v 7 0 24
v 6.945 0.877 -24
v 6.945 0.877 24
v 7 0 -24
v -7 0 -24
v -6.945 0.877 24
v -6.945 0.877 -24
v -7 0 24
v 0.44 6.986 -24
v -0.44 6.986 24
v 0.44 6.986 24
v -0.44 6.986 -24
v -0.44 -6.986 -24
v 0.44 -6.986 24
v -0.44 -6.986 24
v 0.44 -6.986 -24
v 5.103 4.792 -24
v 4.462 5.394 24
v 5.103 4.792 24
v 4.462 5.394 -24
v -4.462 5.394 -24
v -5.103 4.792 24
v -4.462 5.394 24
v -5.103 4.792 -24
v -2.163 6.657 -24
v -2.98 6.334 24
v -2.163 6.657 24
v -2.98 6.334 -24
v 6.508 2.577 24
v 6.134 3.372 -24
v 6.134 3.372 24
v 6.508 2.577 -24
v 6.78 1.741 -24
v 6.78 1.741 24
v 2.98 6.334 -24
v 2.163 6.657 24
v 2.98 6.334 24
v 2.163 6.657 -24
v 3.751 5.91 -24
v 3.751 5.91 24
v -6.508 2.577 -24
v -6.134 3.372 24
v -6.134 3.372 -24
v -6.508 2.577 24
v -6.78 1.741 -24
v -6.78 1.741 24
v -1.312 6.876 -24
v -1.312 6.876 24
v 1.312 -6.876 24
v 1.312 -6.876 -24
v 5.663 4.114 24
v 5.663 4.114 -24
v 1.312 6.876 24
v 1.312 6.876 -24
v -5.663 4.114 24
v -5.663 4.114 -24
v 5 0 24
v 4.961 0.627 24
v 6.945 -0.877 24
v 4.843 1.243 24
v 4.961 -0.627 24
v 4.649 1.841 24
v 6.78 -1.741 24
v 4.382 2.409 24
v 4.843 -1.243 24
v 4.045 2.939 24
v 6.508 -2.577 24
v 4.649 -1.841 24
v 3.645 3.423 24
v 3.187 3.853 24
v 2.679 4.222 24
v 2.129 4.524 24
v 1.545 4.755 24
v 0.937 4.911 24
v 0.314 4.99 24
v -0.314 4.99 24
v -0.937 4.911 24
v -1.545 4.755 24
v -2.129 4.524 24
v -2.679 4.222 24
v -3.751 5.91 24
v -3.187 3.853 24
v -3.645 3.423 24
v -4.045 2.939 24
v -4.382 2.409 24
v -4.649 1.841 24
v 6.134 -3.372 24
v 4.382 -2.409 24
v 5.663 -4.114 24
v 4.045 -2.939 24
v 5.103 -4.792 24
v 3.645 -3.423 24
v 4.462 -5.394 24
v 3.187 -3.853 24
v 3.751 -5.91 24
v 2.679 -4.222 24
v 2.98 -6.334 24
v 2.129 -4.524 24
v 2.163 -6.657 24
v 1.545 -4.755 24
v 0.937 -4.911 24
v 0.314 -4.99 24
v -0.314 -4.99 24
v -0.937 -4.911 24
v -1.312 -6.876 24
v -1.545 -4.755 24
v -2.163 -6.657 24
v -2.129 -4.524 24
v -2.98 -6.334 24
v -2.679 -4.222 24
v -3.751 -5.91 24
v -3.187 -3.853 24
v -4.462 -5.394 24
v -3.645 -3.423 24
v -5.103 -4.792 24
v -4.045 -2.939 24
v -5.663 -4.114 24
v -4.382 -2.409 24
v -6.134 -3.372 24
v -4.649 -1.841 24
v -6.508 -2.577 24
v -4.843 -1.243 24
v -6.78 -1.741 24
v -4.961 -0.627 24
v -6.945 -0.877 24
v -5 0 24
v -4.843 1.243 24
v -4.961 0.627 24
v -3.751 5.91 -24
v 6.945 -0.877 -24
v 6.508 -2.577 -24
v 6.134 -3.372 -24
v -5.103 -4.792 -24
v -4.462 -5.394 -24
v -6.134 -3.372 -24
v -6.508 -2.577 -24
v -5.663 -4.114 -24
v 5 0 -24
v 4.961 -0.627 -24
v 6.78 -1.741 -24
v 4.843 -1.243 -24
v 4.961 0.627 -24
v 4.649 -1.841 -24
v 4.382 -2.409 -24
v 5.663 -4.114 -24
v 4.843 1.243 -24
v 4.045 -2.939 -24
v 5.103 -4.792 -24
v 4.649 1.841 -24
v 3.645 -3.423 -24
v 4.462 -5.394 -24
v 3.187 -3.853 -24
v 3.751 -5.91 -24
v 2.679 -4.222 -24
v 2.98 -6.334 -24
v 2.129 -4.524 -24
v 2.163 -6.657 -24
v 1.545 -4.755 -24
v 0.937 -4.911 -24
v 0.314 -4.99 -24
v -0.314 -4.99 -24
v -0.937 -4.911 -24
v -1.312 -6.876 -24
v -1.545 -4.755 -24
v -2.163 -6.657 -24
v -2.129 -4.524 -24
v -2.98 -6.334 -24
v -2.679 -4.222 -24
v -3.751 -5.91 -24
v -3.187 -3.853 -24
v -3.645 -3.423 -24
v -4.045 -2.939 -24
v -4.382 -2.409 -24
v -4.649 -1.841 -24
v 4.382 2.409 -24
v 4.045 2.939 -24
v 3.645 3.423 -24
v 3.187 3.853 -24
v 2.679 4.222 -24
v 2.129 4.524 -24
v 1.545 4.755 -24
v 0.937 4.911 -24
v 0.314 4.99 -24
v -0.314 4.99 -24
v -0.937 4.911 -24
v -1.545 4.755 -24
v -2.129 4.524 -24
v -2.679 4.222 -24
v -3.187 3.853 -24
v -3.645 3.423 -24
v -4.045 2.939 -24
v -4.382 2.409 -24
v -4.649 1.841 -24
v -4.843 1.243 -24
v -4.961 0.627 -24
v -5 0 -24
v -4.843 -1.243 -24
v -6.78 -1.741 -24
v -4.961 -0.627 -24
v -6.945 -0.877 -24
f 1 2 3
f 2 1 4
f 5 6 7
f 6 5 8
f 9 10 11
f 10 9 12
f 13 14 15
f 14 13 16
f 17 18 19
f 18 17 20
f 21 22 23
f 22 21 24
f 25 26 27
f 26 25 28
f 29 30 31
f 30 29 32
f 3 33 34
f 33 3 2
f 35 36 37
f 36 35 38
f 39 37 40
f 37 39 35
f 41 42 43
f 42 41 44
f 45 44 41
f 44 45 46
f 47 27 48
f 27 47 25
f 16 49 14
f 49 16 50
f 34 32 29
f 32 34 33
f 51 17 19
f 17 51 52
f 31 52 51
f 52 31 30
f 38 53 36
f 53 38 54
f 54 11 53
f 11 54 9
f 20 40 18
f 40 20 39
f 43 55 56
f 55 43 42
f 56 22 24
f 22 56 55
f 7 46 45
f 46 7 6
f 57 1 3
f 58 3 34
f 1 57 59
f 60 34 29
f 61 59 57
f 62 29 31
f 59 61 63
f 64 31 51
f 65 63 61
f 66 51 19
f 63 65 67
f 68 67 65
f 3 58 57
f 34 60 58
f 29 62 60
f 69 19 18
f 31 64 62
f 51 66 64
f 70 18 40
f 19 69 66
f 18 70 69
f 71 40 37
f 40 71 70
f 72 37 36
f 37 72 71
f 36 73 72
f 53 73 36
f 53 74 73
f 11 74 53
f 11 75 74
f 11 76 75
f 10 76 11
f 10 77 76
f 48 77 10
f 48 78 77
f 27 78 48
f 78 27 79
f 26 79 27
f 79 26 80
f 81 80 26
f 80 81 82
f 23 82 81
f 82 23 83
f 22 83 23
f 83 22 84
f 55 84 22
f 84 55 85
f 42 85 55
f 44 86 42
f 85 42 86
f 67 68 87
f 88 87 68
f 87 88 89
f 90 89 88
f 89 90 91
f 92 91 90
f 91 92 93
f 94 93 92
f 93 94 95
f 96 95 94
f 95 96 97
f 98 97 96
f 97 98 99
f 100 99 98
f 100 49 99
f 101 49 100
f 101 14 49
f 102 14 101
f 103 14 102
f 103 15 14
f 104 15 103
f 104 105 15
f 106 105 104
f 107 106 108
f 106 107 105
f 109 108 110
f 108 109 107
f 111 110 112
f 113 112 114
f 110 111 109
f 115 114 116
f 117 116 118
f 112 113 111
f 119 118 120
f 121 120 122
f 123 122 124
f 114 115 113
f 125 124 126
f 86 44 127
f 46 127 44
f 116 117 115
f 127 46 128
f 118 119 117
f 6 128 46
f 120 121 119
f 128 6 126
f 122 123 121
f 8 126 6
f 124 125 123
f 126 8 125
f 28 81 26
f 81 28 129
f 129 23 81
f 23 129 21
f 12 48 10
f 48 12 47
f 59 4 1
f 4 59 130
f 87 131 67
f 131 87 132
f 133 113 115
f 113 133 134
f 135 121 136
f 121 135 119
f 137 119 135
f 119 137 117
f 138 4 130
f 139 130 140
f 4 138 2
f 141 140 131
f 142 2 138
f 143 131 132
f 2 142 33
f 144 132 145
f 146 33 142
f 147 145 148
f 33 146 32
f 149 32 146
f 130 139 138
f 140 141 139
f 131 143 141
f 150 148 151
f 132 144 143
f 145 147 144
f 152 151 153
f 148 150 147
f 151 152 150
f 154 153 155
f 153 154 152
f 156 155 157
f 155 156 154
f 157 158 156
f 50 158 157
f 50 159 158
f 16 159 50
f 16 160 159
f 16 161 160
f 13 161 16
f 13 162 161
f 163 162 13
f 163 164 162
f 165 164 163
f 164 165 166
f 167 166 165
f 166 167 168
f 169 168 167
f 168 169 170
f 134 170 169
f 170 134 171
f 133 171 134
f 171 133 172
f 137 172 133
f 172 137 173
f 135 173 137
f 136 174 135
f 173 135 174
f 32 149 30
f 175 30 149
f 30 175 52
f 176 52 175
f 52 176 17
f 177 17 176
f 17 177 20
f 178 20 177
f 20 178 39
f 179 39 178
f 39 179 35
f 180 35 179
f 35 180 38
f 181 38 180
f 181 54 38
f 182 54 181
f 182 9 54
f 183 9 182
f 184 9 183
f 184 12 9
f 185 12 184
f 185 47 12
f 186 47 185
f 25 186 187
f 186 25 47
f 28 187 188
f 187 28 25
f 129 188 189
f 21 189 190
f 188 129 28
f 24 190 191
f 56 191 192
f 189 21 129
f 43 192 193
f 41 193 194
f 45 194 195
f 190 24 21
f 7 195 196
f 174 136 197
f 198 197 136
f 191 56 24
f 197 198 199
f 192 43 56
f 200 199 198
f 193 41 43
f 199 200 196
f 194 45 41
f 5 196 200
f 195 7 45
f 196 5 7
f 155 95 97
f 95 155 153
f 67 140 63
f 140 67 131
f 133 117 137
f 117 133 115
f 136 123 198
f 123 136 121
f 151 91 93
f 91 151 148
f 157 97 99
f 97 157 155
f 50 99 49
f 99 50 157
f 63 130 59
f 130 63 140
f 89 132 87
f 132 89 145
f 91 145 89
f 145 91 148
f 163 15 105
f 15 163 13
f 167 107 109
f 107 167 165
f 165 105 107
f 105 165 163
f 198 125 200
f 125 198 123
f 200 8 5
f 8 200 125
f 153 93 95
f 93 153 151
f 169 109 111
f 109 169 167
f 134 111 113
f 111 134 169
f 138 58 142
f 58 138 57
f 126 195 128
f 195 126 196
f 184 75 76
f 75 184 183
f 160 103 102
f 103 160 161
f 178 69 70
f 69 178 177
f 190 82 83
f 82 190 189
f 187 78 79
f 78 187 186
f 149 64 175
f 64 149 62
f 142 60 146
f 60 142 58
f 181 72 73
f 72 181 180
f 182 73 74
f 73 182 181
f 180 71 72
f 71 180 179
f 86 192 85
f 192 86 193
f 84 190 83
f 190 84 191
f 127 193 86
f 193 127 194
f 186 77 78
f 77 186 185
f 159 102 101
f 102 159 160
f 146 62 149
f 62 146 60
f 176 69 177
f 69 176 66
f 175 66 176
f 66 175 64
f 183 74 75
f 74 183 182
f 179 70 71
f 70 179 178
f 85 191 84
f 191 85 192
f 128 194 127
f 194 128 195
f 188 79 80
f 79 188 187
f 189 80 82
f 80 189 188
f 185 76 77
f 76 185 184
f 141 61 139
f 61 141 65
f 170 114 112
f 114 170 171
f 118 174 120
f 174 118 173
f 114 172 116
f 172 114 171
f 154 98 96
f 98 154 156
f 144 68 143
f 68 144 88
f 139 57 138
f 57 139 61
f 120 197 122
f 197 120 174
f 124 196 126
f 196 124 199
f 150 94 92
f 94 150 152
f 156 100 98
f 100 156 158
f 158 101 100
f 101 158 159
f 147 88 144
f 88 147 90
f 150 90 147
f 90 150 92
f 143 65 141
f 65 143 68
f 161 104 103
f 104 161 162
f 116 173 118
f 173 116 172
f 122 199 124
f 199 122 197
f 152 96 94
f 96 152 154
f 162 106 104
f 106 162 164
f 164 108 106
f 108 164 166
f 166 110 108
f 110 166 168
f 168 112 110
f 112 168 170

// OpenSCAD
$fn = 50;


difference() {
	union() {
		translate(v = [0, 0, -24.0000000000]) {
			cylinder(h = 48, r = 7.0000000000);
		}
	}
	union() {
		translate(v = [0, 0, -100.0000000000]) {
			cylinder(h = 200, r = 5);
		}
	}
}
